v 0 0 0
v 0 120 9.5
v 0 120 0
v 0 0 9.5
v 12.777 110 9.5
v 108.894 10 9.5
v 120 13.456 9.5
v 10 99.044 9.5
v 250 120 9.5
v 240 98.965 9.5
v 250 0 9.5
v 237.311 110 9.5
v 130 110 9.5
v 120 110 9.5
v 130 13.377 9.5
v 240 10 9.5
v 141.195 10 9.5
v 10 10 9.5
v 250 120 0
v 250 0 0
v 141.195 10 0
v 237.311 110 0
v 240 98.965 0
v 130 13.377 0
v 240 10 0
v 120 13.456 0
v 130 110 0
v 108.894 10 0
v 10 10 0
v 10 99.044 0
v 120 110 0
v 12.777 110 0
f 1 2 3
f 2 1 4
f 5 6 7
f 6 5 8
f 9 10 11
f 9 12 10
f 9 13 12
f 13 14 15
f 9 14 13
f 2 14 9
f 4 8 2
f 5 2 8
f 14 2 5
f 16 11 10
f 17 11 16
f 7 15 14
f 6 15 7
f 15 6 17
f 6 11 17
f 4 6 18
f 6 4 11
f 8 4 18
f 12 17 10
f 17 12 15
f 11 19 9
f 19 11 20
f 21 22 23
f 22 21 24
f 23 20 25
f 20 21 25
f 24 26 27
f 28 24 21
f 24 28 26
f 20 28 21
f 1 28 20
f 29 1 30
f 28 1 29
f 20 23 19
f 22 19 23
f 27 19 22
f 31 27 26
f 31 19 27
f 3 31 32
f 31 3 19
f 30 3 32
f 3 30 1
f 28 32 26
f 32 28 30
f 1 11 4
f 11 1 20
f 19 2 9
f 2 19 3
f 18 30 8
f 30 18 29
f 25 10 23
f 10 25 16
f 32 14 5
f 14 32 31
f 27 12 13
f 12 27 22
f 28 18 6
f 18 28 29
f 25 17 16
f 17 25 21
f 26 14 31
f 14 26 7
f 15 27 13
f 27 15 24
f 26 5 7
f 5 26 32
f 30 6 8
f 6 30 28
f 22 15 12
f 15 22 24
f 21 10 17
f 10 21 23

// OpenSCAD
// batten end cap
// **************************

side = 250;
height=120;
thick = 9.5;
pillar=10;
//floodrad=7.5;
//ypos=85;
//xpos=20;
$fn=50;


difference () {
    union () {
        
        cube([side,height,thick]);

        //translate ([0,20,0]) cube([40,10,10.25]);

        //translate ([0,40,0]) cube([40,10,10]);

 //top
 /*      difference () {
       
       translate ([0,0,0]) cylinder(h=overlap+endthick,r=side+sidethick);
       translate ([0,0,0]) cylinder(h=overlap,r=side);
       }
 
 //sides
       
       union () {
       translate ([-sidethick,-sidethick,0]) cube([side+sidethick,sidethick,overlap+endthick]);
       translate ([-sidethick,0,0]) cube([sidethick,side,overlap+endthick]);
       }

*/
 
   }
   
   /*
   translate ([-(side+sidethick*2),-sidethick-side,0]) cube([side+sidethick,side*2+sidethick*2,overlap+endthick+5]);

   translate ([-(side+sidethick),-sidethick*2-side,0]) cube([side*2+sidethick*2,side+sidethick,overlap+endthick+5]);

   translate ([-side,-sidethick,overlap+endthick-3]) rotate([45,0,0]) cube([side*3,10,10]);

   translate ([-sidethick,-sidethick,overlap+endthick-3]) rotate([45,0,90]) cube([side*3,10,10]);
*/
/*
   translate([xpos,ypos-10,0])
   {
   rotate ([0,0,7.5])
   {
   translate ([0,0,0]) cube([floodflat,floodrad*2,thick+5]);
   translate ([0,0+floodrad,0]) cylinder(h=thick+5,r=floodrad);
   translate ([0+floodflat,0+floodrad,0]) cylinder(h=thick+5,r=floodrad);
   }
   }
*/

    translate ([pillar,pillar,-5]) cube([side-pillar*2,height-pillar*2,thick+10]);

}

    translate ([side/2-pillar/2,0,0]) cube([pillar,height,thick]);

    translate ([side/2-pillar/2,0,0]) rotate([0,0,48]) cube([pillar,height*1.3,thick]);
    translate ([side/2+pillar/8,pillar,0]) rotate([0,0,-48]) cube([pillar,height*1.3,thick]);
   
   

   
